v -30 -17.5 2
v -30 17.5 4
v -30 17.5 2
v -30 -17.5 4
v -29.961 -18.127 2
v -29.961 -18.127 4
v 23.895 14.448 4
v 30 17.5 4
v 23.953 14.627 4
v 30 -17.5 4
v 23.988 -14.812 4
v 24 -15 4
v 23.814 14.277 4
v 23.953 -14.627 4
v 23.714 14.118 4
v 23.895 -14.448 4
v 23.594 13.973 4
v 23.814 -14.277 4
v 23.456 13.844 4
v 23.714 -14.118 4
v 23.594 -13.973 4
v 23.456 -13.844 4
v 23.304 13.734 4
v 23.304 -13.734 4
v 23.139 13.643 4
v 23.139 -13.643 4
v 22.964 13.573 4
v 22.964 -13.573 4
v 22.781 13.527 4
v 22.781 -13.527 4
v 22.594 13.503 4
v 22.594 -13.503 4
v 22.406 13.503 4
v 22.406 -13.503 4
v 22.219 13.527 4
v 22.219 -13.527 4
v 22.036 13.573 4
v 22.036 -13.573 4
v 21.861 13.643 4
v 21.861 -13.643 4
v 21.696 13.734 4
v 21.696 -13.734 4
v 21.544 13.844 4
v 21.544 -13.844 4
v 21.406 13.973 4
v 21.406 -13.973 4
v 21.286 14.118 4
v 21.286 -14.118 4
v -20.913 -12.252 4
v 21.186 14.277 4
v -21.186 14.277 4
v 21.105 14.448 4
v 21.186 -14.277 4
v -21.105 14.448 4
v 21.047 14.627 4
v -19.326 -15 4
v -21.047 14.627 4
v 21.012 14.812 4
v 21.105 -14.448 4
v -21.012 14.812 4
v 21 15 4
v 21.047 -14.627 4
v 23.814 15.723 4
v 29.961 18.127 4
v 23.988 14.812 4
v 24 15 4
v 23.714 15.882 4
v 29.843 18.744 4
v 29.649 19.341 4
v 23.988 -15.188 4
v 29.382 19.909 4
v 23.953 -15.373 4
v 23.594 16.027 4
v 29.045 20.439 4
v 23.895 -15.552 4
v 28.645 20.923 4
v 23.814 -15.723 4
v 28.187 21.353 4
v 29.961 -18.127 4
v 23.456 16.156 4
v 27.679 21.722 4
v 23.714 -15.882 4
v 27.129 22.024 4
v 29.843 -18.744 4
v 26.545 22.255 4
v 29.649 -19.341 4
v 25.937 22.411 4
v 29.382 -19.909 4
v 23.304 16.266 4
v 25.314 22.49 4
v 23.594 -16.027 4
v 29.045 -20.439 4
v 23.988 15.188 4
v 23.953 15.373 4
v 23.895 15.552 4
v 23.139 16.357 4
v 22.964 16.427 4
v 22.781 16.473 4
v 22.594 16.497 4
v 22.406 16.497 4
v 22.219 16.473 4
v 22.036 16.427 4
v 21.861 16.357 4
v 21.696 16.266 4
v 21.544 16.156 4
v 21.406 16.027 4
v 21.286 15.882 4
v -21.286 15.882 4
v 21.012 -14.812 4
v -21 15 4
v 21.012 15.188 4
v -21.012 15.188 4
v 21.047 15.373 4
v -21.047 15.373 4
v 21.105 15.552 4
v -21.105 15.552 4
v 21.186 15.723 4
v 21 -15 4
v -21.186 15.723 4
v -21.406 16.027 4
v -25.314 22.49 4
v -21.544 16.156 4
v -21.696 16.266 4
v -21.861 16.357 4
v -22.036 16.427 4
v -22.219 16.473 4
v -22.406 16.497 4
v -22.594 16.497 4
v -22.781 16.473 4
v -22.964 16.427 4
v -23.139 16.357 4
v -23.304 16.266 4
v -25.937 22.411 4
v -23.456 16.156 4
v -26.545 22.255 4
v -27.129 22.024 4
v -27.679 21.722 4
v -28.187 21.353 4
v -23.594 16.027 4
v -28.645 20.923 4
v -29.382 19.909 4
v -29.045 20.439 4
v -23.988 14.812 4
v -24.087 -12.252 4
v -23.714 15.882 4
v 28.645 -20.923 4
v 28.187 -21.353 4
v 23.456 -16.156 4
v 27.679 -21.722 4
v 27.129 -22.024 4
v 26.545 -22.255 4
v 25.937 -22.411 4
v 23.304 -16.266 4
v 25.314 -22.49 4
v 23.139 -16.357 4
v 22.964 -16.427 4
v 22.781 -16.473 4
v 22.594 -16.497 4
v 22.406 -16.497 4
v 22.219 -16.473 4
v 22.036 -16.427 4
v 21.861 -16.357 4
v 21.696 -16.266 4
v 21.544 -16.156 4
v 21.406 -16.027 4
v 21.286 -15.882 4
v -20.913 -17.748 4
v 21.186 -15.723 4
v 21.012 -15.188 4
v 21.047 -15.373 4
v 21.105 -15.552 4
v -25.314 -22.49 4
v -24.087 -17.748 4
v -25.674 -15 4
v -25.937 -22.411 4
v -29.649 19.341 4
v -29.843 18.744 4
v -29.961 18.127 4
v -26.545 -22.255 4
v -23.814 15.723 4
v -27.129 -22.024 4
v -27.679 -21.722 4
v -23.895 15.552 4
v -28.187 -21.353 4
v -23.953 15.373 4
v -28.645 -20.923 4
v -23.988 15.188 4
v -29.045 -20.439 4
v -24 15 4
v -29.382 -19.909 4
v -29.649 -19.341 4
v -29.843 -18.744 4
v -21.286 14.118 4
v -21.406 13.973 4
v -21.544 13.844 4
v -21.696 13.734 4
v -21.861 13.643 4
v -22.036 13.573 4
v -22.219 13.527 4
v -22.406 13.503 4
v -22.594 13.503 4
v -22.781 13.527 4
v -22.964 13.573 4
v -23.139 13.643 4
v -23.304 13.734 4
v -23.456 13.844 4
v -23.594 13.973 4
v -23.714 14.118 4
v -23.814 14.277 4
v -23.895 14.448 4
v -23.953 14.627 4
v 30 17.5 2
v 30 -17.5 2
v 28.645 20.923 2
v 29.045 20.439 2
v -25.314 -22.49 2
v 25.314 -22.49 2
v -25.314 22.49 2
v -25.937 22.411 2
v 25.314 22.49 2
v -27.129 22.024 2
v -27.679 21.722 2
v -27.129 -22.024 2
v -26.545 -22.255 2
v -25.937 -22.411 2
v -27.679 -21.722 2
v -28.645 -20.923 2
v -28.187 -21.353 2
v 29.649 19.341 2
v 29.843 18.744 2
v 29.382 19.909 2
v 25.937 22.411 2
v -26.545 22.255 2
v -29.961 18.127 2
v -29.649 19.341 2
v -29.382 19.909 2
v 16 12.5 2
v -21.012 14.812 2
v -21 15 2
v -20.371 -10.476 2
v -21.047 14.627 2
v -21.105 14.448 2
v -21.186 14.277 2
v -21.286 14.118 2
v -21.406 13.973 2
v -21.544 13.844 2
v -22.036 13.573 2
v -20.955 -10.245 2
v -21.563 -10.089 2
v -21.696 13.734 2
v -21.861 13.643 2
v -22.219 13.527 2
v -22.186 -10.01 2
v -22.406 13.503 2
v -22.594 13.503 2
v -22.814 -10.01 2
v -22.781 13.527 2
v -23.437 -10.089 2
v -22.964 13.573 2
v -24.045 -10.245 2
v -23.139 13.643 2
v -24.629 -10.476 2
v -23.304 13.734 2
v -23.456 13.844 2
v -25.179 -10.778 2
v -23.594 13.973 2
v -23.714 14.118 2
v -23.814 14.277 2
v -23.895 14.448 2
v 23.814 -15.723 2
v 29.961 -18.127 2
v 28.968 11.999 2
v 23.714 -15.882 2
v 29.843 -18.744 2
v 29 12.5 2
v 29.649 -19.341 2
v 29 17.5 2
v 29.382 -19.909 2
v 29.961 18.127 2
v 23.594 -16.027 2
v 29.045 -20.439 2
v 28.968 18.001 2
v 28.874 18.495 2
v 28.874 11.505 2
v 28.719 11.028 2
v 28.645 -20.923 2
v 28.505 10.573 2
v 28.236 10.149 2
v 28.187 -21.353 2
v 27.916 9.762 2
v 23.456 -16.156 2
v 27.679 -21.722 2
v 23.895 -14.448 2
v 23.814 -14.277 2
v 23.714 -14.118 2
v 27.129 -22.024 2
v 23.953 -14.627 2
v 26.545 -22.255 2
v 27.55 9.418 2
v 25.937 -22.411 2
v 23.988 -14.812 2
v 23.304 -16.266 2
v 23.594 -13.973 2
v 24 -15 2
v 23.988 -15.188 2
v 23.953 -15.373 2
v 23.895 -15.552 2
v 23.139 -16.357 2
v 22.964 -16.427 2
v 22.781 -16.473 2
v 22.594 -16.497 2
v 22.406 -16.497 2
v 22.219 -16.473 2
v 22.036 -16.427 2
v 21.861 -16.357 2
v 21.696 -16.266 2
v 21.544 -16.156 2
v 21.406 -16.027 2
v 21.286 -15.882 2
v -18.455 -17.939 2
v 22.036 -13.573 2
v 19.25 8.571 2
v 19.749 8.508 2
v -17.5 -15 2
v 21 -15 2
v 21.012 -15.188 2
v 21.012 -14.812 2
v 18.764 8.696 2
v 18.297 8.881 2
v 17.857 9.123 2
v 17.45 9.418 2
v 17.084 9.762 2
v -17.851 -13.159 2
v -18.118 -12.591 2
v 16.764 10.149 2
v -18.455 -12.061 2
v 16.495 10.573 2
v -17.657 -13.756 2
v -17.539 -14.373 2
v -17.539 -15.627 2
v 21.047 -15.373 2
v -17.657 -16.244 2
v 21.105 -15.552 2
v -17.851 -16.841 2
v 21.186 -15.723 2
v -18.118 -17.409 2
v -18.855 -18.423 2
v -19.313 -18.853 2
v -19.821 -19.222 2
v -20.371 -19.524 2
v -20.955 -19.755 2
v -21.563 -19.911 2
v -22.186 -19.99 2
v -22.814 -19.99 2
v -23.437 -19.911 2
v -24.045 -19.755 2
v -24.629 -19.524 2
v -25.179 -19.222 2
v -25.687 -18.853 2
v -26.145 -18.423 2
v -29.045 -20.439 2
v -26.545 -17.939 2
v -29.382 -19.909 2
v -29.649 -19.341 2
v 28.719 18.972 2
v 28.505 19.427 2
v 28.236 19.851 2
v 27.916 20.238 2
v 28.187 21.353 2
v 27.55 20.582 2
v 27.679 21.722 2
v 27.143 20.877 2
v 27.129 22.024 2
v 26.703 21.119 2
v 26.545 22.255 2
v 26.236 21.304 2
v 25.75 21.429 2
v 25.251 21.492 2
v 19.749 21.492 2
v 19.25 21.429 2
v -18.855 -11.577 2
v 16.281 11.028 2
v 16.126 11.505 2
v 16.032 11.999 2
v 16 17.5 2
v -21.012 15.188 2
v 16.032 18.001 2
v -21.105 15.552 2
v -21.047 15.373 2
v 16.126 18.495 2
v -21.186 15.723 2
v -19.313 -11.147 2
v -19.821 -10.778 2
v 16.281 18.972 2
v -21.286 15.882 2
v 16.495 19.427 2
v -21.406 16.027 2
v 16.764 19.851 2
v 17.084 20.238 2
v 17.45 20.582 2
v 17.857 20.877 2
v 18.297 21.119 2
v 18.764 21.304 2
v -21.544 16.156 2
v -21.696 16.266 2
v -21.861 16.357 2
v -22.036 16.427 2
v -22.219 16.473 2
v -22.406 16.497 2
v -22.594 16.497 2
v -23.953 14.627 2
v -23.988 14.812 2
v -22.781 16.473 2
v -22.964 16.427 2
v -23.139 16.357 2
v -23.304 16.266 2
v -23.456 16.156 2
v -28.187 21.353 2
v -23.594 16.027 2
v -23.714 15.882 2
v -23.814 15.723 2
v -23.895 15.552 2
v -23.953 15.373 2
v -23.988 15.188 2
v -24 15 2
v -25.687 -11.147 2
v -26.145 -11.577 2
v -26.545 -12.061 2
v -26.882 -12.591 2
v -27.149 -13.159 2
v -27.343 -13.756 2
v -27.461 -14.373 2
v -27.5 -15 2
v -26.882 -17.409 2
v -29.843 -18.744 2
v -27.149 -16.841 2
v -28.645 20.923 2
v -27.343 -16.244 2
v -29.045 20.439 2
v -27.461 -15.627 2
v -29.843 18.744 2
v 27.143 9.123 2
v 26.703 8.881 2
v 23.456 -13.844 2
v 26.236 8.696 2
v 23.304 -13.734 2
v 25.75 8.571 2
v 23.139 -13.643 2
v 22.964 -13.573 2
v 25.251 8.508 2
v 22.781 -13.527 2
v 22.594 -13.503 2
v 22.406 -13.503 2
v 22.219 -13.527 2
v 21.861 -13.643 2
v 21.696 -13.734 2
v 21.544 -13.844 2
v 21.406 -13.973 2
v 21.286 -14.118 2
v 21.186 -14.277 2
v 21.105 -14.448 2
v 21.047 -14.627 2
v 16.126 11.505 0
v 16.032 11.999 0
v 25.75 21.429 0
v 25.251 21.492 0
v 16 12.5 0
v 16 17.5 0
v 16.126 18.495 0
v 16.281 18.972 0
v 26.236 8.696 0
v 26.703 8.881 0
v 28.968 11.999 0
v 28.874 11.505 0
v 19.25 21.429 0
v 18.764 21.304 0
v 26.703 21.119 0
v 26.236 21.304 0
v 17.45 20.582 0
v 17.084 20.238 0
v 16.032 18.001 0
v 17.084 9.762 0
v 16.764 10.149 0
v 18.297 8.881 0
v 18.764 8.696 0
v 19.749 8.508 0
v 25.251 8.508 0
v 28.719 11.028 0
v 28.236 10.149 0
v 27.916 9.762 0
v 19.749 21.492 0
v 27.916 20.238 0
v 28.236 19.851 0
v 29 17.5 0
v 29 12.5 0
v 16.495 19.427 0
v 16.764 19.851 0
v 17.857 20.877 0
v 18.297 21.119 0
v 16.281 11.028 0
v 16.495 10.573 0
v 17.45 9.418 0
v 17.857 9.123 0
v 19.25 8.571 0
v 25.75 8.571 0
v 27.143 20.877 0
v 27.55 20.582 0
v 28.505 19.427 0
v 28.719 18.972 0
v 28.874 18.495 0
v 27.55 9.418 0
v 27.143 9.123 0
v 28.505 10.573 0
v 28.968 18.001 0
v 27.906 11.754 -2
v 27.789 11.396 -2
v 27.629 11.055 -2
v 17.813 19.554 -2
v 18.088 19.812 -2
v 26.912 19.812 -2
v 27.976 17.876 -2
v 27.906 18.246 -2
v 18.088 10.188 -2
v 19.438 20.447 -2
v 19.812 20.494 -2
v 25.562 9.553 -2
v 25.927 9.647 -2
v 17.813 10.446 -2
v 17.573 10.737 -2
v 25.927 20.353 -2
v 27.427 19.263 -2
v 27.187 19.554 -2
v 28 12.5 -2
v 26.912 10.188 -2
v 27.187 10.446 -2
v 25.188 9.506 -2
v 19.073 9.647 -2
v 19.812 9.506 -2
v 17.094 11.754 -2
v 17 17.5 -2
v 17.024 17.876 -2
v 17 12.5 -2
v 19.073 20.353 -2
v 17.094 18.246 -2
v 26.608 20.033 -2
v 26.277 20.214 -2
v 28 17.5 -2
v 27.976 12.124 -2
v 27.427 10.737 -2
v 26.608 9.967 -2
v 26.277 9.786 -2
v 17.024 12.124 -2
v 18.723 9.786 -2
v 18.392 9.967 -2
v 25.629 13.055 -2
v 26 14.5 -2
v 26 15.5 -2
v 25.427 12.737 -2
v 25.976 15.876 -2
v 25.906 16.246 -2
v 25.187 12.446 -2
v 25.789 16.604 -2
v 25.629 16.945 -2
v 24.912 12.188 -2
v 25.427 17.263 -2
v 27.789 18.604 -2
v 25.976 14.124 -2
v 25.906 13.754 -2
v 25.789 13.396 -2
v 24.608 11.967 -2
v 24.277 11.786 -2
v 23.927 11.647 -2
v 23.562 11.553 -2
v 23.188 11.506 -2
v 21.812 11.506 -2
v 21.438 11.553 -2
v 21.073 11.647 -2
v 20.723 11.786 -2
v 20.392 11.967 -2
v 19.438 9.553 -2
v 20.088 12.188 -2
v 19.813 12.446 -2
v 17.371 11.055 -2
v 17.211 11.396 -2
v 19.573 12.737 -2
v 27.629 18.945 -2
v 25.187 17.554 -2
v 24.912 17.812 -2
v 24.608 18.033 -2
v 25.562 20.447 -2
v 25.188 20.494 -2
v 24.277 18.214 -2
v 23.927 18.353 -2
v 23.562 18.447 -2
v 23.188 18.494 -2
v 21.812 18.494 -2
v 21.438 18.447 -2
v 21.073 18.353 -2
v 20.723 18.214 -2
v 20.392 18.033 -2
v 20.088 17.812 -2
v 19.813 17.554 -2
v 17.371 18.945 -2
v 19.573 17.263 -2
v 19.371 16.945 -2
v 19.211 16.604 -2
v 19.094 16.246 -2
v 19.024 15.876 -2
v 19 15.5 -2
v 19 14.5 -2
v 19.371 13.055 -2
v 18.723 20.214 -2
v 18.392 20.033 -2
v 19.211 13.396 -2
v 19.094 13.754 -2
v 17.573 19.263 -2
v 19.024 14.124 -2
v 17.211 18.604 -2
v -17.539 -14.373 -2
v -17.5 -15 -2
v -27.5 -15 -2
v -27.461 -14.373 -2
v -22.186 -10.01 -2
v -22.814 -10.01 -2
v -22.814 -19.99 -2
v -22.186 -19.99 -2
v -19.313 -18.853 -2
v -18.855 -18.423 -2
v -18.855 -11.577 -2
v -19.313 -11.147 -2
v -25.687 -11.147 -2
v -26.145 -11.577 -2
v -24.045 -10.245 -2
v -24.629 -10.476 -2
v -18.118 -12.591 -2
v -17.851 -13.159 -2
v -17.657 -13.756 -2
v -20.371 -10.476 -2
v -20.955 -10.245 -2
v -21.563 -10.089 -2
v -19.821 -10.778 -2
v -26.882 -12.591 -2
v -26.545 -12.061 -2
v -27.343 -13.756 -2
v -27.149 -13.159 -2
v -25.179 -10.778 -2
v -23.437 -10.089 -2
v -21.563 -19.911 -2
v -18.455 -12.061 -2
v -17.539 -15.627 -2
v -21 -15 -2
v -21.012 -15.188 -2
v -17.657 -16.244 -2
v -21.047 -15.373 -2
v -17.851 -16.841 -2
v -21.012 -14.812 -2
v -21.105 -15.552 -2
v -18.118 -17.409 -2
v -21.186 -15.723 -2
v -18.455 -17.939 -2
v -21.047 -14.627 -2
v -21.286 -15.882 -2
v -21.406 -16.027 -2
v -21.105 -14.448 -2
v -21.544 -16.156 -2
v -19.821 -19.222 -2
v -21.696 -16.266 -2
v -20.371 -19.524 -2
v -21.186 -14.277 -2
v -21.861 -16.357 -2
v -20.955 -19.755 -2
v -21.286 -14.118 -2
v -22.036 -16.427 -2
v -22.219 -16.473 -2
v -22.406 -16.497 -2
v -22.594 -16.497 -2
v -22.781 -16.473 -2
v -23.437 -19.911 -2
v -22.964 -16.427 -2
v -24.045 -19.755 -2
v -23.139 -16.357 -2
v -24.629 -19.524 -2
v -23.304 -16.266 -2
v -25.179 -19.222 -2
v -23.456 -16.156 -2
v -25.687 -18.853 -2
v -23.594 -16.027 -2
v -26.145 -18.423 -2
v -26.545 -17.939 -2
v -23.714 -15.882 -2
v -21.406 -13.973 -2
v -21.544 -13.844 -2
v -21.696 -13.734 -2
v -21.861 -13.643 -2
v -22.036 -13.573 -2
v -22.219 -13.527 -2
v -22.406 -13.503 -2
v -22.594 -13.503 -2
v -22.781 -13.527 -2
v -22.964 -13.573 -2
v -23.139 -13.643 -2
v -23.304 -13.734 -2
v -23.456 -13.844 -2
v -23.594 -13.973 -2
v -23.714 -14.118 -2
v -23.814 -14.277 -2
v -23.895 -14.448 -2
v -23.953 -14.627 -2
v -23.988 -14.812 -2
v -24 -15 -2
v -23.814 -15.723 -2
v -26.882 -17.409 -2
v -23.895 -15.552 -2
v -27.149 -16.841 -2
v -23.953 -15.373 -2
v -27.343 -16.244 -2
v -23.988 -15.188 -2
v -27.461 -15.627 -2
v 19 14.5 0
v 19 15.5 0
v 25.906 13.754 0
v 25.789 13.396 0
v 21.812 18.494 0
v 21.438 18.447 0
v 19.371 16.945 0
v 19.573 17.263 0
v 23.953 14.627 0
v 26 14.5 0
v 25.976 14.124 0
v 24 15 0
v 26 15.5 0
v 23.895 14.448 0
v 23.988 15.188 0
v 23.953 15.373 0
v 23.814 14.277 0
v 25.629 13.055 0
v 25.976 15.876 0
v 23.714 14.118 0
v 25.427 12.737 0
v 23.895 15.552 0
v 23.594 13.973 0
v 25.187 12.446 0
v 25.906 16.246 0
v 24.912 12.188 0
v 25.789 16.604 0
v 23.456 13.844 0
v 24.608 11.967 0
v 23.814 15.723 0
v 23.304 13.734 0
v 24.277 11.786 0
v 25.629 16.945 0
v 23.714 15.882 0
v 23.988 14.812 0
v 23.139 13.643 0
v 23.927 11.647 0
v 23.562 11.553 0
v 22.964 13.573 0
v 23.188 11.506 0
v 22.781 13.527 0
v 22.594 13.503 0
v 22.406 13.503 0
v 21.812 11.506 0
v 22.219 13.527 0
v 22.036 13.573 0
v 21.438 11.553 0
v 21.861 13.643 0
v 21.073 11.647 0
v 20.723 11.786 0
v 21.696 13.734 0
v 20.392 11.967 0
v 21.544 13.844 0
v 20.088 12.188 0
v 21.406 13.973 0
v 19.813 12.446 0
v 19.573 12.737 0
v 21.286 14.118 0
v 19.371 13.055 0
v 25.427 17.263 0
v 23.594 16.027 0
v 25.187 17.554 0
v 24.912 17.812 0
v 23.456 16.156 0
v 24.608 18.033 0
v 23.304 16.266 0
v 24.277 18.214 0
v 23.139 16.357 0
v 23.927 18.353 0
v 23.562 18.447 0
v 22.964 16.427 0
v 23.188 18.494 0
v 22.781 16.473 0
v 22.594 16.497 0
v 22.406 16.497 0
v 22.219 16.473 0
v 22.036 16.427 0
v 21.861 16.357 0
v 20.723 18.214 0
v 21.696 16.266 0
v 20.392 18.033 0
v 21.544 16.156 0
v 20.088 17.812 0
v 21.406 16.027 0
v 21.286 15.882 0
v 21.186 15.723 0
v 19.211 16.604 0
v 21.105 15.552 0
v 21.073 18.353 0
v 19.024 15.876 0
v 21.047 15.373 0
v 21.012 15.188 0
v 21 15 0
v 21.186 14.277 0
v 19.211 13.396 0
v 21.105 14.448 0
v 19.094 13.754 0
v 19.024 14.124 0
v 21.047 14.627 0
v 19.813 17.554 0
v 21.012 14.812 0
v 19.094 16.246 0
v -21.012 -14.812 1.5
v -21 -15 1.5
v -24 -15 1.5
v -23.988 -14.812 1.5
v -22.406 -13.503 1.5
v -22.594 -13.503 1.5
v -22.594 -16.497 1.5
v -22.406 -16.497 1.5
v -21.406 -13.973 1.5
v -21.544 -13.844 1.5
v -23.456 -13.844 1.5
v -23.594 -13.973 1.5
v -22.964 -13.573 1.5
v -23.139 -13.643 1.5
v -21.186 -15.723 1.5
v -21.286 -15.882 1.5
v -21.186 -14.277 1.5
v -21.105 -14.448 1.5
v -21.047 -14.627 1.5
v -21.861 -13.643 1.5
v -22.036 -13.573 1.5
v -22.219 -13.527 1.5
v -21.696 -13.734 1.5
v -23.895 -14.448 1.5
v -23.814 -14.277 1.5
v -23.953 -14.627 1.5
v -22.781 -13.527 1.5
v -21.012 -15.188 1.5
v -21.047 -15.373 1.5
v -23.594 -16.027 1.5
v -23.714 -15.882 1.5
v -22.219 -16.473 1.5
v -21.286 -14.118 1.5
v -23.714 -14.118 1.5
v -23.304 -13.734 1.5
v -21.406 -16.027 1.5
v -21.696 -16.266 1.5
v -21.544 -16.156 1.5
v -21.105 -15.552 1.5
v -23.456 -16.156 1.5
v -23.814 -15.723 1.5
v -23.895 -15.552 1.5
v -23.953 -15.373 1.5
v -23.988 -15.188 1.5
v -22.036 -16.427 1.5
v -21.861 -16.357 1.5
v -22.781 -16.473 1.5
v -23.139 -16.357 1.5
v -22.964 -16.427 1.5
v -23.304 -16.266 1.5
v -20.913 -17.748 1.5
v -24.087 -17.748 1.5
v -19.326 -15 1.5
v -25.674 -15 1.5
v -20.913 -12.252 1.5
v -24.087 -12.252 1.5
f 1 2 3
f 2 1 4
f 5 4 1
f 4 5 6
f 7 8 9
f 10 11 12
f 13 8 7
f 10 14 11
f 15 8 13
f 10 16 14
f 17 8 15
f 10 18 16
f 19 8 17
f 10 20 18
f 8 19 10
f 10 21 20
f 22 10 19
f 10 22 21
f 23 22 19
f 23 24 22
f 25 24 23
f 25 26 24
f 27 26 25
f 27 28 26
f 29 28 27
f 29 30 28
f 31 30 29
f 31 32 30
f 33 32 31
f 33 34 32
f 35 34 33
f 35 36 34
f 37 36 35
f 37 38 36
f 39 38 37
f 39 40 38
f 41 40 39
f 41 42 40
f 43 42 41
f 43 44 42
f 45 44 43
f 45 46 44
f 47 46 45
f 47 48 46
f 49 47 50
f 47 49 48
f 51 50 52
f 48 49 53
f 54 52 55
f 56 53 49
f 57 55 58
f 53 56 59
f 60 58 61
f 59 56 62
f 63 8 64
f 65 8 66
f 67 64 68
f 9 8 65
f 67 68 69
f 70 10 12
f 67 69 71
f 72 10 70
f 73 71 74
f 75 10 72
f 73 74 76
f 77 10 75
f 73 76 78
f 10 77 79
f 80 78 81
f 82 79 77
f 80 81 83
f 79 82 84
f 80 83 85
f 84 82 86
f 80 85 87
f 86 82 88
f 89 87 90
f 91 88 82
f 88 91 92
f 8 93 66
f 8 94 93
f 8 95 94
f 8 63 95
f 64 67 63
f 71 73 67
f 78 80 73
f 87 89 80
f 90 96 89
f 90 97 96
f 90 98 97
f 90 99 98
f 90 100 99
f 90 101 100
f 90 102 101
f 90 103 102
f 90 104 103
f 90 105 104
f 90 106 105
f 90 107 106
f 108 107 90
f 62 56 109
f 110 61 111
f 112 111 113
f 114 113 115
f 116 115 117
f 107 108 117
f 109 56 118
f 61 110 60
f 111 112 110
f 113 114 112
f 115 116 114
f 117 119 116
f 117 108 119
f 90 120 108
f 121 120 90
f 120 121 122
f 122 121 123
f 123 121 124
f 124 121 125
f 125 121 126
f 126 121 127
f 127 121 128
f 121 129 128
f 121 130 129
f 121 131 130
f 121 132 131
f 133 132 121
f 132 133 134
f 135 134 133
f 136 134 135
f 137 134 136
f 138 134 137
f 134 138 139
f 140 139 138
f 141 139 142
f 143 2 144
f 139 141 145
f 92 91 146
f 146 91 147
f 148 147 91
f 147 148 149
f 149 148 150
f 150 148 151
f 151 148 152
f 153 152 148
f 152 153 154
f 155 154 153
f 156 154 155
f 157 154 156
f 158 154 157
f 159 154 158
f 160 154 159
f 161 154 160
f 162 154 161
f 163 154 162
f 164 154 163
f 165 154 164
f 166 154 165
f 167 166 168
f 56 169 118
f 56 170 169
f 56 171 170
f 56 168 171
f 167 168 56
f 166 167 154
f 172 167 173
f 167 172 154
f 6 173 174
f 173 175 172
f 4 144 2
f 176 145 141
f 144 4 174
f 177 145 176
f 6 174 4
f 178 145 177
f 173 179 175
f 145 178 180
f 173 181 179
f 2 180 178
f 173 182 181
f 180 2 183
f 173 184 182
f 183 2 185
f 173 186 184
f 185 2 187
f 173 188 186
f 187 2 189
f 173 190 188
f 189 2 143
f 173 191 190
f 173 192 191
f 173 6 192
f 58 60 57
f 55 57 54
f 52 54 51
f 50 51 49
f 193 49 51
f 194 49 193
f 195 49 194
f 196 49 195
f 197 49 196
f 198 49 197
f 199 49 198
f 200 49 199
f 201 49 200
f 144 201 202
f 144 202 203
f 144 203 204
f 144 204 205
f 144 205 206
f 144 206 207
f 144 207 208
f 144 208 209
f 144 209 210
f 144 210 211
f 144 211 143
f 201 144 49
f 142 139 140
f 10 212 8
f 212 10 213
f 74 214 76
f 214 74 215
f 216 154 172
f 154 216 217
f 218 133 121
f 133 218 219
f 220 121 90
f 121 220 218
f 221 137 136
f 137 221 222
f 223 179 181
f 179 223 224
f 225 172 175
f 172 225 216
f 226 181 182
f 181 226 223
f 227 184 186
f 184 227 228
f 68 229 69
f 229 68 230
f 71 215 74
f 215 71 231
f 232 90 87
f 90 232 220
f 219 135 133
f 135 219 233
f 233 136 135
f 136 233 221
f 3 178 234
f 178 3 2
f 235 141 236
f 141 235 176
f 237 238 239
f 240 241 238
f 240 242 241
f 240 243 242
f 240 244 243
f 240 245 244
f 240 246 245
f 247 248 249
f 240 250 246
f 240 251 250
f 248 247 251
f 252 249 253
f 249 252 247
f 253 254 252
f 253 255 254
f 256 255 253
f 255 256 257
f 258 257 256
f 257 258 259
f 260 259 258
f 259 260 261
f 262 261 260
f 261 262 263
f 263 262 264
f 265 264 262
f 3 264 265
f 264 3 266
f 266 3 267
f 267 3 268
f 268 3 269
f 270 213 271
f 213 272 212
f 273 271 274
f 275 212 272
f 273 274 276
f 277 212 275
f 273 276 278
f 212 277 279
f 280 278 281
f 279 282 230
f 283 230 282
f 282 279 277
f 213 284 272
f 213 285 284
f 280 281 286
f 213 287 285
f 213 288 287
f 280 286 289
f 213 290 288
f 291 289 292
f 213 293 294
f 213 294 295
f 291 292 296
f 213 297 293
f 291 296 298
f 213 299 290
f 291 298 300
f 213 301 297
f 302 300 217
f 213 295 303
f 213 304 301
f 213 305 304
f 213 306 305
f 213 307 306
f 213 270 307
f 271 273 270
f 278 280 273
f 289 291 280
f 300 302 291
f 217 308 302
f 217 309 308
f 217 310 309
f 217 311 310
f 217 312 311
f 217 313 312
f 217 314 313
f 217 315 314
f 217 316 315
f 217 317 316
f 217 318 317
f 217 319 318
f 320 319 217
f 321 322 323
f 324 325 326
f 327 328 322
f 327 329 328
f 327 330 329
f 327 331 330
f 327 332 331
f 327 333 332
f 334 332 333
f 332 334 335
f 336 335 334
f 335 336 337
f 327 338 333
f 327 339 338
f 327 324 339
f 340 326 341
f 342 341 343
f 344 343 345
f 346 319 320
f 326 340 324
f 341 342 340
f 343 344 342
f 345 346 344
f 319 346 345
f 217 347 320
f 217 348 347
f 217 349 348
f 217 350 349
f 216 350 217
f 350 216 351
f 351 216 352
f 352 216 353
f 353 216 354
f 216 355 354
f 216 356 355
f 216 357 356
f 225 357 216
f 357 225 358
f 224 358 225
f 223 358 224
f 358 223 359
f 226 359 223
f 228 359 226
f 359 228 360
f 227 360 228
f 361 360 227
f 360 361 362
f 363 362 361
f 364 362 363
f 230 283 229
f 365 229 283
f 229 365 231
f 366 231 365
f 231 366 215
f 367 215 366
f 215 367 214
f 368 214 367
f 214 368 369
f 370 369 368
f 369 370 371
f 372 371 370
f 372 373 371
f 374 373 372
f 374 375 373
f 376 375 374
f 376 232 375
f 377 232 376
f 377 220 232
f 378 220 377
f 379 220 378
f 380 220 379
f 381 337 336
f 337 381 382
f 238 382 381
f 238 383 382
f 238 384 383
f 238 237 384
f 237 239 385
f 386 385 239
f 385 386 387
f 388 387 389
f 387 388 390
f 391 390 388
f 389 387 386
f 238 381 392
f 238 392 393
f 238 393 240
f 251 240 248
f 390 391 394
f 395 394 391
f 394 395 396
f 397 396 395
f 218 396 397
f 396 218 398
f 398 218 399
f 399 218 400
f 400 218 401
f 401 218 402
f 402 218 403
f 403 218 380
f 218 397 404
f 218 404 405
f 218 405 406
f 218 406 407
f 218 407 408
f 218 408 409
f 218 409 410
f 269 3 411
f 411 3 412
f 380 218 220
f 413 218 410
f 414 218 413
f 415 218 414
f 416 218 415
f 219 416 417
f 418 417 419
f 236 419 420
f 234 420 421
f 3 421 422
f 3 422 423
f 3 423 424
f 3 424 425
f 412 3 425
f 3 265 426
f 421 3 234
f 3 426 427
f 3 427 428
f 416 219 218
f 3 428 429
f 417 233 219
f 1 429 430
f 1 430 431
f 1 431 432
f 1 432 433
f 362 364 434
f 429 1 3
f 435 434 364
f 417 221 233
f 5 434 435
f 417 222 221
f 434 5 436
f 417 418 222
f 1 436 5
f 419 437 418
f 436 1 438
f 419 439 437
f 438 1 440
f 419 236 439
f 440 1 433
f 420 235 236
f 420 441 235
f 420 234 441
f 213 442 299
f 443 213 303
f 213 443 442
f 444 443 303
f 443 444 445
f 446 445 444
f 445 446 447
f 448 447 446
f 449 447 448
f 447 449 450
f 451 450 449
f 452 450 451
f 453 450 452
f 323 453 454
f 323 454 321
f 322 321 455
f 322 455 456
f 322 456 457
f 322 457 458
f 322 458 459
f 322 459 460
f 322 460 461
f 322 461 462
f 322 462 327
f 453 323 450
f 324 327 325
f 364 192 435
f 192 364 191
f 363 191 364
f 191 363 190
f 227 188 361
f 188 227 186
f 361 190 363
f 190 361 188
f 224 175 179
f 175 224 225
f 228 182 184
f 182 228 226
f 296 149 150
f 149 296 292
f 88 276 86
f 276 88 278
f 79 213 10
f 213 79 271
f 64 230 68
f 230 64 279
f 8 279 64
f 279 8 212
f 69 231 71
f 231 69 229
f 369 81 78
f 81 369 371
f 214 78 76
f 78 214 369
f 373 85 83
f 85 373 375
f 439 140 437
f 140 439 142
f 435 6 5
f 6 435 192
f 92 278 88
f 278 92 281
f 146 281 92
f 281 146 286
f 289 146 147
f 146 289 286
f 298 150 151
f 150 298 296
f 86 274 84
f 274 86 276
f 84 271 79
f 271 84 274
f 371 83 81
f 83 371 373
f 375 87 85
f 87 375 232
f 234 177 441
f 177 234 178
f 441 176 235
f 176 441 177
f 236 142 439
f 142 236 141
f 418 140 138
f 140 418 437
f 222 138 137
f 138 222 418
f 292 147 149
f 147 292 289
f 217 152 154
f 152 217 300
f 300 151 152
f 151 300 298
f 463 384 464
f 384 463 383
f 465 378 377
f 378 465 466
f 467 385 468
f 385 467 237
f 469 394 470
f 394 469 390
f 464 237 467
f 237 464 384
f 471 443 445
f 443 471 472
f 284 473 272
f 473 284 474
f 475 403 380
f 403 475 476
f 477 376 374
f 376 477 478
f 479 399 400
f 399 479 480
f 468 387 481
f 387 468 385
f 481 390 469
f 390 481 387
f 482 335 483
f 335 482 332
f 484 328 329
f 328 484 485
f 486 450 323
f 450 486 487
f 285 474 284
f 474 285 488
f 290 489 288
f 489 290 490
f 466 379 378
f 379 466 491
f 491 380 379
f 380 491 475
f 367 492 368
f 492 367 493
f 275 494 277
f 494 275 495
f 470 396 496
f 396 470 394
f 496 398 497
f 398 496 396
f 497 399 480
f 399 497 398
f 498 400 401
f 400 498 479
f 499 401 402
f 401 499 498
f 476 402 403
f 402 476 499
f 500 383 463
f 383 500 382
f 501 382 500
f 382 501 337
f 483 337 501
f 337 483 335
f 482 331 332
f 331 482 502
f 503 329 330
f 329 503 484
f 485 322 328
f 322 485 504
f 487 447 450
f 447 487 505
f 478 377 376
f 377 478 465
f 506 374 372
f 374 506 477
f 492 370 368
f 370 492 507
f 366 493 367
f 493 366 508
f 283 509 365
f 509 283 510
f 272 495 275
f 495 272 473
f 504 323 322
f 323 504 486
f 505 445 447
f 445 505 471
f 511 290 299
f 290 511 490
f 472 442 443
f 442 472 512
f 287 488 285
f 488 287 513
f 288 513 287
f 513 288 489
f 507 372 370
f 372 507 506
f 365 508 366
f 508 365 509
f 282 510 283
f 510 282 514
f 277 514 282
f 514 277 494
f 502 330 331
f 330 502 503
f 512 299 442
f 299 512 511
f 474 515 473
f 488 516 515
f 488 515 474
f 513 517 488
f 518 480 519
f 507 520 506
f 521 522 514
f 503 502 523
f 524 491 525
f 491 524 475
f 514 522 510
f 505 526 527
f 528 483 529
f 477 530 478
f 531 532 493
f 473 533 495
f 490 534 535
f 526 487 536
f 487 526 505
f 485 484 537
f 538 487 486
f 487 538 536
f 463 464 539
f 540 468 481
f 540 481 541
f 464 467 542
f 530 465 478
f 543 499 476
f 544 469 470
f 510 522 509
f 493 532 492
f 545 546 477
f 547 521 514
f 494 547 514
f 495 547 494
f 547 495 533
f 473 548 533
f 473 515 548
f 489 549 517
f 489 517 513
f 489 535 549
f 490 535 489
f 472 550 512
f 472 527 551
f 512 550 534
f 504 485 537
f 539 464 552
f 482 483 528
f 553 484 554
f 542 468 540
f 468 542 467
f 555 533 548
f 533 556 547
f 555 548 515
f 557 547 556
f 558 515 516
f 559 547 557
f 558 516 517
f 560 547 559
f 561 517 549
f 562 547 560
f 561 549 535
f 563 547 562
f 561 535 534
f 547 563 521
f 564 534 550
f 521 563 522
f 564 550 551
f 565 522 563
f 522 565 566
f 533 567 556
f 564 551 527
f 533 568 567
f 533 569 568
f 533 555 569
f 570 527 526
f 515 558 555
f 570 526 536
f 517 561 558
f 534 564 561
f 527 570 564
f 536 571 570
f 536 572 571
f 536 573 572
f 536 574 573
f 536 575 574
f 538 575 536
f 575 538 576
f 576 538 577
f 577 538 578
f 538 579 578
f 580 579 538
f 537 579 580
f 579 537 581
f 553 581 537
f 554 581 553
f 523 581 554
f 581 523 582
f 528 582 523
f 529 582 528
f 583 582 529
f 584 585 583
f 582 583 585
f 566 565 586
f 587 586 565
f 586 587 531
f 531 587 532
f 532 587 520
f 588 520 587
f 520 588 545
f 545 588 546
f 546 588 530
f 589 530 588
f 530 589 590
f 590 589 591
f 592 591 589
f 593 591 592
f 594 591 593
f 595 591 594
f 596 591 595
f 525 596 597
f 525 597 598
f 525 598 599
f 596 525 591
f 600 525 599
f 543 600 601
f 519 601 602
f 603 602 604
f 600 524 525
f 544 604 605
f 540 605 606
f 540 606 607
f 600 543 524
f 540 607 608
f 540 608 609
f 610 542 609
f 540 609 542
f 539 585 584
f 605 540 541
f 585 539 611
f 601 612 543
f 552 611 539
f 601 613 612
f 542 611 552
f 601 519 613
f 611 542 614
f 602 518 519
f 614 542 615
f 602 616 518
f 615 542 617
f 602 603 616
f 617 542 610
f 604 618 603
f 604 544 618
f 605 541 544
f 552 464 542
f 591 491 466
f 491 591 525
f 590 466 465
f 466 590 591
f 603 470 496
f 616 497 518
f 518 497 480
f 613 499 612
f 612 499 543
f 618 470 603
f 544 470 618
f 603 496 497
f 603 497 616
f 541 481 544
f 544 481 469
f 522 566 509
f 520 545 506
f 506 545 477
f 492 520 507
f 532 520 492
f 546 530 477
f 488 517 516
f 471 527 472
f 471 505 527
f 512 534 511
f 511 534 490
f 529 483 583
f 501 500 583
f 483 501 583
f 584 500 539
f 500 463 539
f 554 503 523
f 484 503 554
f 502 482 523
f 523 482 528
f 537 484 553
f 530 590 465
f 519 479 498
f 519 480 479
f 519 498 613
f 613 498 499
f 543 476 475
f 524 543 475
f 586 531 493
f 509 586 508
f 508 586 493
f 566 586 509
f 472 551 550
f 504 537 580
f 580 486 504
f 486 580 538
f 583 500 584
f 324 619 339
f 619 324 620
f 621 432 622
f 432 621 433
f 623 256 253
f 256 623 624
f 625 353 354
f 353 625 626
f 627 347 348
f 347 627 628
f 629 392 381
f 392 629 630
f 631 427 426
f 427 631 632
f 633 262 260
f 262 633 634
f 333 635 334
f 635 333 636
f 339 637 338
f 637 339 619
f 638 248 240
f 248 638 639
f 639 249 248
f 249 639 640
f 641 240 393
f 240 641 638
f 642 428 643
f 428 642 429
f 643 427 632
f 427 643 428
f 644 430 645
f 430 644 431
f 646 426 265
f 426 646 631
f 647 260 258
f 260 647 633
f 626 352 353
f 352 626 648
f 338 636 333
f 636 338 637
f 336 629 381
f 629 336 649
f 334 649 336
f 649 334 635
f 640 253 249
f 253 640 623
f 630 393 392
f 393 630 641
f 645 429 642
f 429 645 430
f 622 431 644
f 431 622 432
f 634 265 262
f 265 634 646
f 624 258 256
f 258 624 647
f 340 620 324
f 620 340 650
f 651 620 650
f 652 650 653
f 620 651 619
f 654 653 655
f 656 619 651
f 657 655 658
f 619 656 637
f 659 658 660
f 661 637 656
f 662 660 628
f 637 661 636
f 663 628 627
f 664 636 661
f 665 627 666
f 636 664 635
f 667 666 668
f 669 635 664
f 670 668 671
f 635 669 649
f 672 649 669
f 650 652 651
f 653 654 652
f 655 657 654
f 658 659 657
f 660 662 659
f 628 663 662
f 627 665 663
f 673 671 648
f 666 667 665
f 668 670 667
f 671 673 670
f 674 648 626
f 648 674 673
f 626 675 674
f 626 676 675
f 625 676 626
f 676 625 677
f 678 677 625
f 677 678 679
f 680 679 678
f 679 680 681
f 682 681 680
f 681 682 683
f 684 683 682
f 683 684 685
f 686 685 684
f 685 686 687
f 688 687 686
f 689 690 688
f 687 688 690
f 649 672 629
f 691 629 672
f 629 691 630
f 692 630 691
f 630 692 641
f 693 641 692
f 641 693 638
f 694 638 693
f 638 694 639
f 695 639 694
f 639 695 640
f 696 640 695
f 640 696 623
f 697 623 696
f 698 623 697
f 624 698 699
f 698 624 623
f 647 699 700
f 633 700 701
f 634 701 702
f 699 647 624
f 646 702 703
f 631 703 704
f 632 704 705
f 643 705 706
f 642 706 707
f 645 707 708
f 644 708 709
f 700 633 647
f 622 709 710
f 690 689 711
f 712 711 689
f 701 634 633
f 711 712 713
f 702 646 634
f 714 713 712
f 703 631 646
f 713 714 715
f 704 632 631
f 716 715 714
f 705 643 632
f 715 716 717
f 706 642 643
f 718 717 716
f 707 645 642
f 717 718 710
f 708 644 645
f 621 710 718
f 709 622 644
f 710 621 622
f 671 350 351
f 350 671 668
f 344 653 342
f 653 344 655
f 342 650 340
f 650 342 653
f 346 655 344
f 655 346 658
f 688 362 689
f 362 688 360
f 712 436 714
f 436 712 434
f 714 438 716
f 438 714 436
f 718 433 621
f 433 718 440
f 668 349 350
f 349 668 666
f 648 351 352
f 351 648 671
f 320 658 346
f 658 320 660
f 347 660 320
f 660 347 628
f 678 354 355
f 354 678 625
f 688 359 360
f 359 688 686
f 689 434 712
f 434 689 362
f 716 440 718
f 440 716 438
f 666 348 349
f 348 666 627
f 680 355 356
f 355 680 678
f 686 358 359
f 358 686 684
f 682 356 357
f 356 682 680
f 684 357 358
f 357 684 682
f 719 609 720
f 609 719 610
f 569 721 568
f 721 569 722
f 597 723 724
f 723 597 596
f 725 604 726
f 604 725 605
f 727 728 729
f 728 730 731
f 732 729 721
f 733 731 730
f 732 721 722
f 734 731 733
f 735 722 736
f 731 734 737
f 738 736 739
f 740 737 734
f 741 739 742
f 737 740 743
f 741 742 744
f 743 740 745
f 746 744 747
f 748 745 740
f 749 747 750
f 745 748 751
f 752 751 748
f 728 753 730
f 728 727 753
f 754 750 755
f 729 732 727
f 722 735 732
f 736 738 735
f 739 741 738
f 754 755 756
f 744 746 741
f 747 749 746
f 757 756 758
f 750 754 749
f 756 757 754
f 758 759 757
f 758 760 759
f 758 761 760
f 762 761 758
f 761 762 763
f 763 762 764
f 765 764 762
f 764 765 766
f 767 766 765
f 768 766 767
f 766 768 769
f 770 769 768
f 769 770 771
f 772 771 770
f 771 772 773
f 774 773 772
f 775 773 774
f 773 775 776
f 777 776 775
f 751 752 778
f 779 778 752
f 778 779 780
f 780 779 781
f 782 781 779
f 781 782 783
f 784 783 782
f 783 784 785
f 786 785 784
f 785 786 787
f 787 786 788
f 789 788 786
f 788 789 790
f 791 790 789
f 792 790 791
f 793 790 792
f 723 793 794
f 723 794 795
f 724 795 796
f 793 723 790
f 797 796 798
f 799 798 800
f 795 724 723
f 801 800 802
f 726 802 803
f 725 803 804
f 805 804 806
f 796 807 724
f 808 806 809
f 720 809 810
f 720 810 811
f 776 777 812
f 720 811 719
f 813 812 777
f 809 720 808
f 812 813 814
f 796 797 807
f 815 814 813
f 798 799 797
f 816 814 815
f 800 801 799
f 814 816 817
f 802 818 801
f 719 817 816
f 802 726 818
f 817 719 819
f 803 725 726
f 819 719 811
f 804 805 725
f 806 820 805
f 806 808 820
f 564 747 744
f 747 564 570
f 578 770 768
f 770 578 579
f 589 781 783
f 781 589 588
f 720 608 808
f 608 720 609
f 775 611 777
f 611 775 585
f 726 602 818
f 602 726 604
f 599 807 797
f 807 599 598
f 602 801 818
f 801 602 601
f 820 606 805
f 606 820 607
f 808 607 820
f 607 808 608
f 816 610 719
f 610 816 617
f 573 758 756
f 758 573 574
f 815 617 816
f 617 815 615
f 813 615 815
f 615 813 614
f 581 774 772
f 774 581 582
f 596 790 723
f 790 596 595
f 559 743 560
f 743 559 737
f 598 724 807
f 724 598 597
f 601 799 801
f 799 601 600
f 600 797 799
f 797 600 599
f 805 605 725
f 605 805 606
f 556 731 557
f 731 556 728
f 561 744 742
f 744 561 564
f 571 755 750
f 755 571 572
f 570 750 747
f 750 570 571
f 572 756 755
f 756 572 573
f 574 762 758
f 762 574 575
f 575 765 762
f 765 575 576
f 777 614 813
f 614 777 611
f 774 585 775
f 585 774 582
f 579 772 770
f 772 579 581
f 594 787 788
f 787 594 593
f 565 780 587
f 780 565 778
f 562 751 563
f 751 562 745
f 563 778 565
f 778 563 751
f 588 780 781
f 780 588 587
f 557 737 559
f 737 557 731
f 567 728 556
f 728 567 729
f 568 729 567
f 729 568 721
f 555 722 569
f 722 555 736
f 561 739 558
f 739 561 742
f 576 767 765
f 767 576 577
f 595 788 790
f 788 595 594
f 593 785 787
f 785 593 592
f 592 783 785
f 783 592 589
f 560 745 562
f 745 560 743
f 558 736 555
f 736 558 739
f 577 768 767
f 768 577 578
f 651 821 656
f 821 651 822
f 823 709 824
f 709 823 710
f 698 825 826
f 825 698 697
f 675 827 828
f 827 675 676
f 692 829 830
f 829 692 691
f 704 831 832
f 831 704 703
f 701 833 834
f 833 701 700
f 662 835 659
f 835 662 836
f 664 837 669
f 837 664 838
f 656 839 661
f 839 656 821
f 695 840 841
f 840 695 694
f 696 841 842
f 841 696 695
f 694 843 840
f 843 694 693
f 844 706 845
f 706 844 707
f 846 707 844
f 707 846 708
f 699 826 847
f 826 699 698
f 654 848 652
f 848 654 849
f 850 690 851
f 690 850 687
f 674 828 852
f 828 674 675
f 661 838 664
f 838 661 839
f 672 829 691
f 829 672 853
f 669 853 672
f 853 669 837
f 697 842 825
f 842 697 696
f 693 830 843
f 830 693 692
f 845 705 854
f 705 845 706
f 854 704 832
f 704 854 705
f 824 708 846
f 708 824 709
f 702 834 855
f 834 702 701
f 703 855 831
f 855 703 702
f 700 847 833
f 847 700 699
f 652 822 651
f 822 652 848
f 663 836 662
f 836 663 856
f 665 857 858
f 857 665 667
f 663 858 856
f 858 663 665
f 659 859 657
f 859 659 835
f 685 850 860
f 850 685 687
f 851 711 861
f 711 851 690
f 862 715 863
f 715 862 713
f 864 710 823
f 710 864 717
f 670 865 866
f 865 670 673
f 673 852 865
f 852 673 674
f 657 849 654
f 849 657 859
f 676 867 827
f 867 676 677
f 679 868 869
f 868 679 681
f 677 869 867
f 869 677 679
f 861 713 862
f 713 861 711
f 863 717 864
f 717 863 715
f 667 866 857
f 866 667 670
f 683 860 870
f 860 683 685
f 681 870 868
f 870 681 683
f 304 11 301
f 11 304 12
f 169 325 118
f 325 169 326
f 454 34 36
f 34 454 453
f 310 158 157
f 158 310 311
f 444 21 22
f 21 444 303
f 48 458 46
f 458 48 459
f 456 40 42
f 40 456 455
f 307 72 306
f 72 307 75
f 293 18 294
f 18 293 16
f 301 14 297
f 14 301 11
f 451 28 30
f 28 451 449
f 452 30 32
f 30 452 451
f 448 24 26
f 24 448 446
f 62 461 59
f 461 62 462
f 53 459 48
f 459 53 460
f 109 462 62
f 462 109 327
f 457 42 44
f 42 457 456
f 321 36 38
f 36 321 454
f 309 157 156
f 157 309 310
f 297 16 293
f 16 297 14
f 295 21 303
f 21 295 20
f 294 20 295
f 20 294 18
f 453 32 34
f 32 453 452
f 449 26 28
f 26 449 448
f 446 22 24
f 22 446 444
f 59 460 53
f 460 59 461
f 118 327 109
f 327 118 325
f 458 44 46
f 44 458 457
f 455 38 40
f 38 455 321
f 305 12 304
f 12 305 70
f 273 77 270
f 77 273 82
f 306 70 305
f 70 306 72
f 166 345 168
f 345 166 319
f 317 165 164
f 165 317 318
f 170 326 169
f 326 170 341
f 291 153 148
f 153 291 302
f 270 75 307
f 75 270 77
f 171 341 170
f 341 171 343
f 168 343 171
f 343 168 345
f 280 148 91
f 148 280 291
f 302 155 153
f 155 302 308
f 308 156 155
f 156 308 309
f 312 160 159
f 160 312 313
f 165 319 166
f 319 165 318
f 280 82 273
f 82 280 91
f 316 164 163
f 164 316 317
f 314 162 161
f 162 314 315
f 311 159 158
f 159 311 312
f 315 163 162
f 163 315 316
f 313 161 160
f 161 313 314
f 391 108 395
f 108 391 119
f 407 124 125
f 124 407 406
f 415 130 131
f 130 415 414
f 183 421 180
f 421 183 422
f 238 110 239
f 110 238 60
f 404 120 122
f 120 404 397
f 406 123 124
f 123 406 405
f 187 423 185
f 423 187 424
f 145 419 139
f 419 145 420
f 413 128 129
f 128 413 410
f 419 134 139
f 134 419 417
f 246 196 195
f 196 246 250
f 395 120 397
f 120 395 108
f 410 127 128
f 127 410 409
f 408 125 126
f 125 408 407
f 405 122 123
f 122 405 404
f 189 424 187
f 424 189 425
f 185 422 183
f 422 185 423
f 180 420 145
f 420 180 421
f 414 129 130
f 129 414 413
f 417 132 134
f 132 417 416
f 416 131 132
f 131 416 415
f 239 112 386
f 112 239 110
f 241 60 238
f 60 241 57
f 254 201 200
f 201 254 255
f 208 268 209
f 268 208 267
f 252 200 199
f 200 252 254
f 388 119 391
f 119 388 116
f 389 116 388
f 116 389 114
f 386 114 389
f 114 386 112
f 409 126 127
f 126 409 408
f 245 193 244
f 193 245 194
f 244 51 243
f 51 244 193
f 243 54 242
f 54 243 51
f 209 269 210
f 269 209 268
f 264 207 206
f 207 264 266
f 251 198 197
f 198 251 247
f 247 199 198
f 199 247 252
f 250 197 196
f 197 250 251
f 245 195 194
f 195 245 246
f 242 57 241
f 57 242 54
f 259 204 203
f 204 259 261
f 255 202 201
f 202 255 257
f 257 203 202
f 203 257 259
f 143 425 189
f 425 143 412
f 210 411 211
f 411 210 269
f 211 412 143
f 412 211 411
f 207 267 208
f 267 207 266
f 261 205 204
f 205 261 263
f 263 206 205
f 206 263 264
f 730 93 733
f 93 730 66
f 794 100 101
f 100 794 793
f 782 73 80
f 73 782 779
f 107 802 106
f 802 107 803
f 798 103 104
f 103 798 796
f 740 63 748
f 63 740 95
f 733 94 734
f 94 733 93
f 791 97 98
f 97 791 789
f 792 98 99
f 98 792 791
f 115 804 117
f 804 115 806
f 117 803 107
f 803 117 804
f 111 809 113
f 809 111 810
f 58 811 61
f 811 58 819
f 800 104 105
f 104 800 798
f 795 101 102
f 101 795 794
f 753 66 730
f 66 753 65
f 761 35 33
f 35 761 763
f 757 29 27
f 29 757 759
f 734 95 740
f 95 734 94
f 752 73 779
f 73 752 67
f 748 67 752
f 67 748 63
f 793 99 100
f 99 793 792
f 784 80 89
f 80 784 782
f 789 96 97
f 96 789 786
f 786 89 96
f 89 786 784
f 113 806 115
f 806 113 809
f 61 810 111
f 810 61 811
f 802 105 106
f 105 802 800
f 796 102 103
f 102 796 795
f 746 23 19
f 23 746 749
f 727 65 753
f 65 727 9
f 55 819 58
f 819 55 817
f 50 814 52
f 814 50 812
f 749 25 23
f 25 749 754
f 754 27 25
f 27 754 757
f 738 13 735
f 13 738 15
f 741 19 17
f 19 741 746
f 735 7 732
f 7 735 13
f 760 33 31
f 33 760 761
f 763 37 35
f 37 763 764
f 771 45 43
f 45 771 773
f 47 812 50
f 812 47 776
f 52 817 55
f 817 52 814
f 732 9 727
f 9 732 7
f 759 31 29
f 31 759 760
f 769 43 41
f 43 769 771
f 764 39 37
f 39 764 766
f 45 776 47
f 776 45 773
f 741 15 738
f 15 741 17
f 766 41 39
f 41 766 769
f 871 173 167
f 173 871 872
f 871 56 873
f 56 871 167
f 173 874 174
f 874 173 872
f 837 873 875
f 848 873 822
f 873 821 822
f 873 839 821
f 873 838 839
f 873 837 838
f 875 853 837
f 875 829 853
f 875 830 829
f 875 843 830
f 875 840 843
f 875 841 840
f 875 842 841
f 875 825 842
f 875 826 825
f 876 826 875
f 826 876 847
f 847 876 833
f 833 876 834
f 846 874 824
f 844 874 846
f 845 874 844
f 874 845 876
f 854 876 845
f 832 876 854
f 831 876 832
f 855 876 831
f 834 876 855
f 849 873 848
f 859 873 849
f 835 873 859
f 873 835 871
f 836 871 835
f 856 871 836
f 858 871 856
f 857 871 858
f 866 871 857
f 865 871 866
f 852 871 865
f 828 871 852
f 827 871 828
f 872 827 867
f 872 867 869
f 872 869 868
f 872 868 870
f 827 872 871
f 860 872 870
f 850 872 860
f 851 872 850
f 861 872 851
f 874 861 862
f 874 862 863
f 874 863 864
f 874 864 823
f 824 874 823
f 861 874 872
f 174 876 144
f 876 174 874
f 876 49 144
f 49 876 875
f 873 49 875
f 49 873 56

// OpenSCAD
$fn = 50;


difference() {
	union() {
		translate(v = [0, 0, 2]) {
			rotate(a = [0, 0, 0]) {
				hull() {
					translate(v = [-25.0000000000, 17.5000000000, 0]) {
						rotate(a = [0, 0, 0]) {
							translate(v = [0, 0, 0]) {
								rotate(a = [0, 0, 0]) {
									cylinder(h = 2, r = 5);
								}
							}
						}
					}
					translate(v = [25.0000000000, 17.5000000000, 0]) {
						rotate(a = [0, 0, 0]) {
							translate(v = [0, 0, 0]) {
								rotate(a = [0, 0, 0]) {
									cylinder(h = 2, r = 5);
								}
							}
						}
					}
					translate(v = [-25.0000000000, -17.5000000000, 0]) {
						rotate(a = [0, 0, 0]) {
							translate(v = [0, 0, 0]) {
								rotate(a = [0, 0, 0]) {
									cylinder(h = 2, r = 5);
								}
							}
						}
					}
					translate(v = [25.0000000000, -17.5000000000, 0]) {
						rotate(a = [0, 0, 0]) {
							translate(v = [0, 0, 0]) {
								rotate(a = [0, 0, 0]) {
									cylinder(h = 2, r = 5);
								}
							}
						}
					}
				}
			}
		}
		translate(v = [22.5000000000, 15.0000000000, 0]) {
			rotate(a = [0, 0, 0]) {
				hull() {
					translate(v = [-2.5000000000, 2.5000000000, 0]) {
						rotate(a = [0, 0, 0]) {
							cylinder(h = 2, r1 = 4.0000000000, r2 = 4.0000000000);
						}
					}
					translate(v = [2.5000000000, 2.5000000000, 0]) {
						rotate(a = [0, 0, 0]) {
							cylinder(h = 2, r1 = 4.0000000000, r2 = 4.0000000000);
						}
					}
					translate(v = [-2.5000000000, -2.5000000000, 0]) {
						rotate(a = [0, 0, 0]) {
							cylinder(h = 2, r1 = 4.0000000000, r2 = 4.0000000000);
						}
					}
					translate(v = [2.5000000000, -2.5000000000, 0]) {
						rotate(a = [0, 0, 0]) {
							cylinder(h = 2, r1 = 4.0000000000, r2 = 4.0000000000);
						}
					}
				}
			}
		}
		translate(v = [22.5000000000, 15.0000000000, -2]) {
			rotate(a = [0, 180, 0]) {
				hull() {
					translate(v = [-2.5000000000, 2.5000000000, 0]) {
						rotate(a = [0, 180, 0]) {
							cylinder(h = 2, r1 = 3.0000000000, r2 = 4.0000000000);
						}
					}
					translate(v = [2.5000000000, 2.5000000000, 0]) {
						rotate(a = [0, 180, 0]) {
							cylinder(h = 2, r1 = 3.0000000000, r2 = 4.0000000000);
						}
					}
					translate(v = [-2.5000000000, -2.5000000000, 0]) {
						rotate(a = [0, 180, 0]) {
							cylinder(h = 2, r1 = 3.0000000000, r2 = 4.0000000000);
						}
					}
					translate(v = [2.5000000000, -2.5000000000, 0]) {
						rotate(a = [0, 180, 0]) {
							cylinder(h = 2, r1 = 3.0000000000, r2 = 4.0000000000);
						}
					}
				}
			}
		}
		translate(v = [-22.5000000000, -15.0000000000, -2.0000000000]) {
			rotate(a = [0, 0, 0]) {
				cylinder(h = 4, r = 5);
			}
		}
	}
	union() {
		translate(v = [22.5000000000, 15.0000000000, -2]) {
			rotate(a = [0, 0, 0]) {
				hull() {
					translate(v = [-0.5000000000, 0.5000000000, 0]) {
						rotate(a = [0, 0, 0]) {
							translate(v = [0, 0, 0]) {
								rotate(a = [0, 0, 0]) {
									cylinder(h = 2, r = 3.0000000000);
								}
							}
						}
					}
					translate(v = [0.5000000000, 0.5000000000, 0]) {
						rotate(a = [0, 0, 0]) {
							translate(v = [0, 0, 0]) {
								rotate(a = [0, 0, 0]) {
									cylinder(h = 2, r = 3.0000000000);
								}
							}
						}
					}
					translate(v = [-0.5000000000, -0.5000000000, 0]) {
						rotate(a = [0, 0, 0]) {
							translate(v = [0, 0, 0]) {
								rotate(a = [0, 0, 0]) {
									cylinder(h = 2, r = 3.0000000000);
								}
							}
						}
					}
					translate(v = [0.5000000000, -0.5000000000, 0]) {
						rotate(a = [0, 0, 0]) {
							translate(v = [0, 0, 0]) {
								rotate(a = [0, 0, 0]) {
									cylinder(h = 2, r = 3.0000000000);
								}
							}
						}
					}
				}
			}
		}
		translate(v = [-22.5000000000, -15.0000000000, -50]) {
			rotate(a = [0, 0, 0]) {
				cylinder(h = 100, r = 1.5000000000);
			}
		}
		translate(v = [22.5000000000, -15.0000000000, -50]) {
			rotate(a = [0, 0, 0]) {
				cylinder(h = 100, r = 1.5000000000);
			}
		}
		translate(v = [-22.5000000000, 15.0000000000, -50]) {
			rotate(a = [0, 0, 0]) {
				cylinder(h = 100, r = 1.5000000000);
			}
		}
		translate(v = [22.5000000000, 15.0000000000, -50]) {
			rotate(a = [0, 0, 0]) {
				cylinder(h = 100, r = 1.5000000000);
			}
		}
		translate(v = [-22.5000000000, -15.0000000000, 1.5000000000]) {
			rotate(a = [0, 0, 0]) {
				#translate(v = [0, 0, 0]) {
					rotate(a = [0, 0, 0]) {
						linear_extrude(height = 2.5000000000) {
							polygon(points = [[3.1735000000, 0.0000000000], [1.5867500000, 2.7483316189], [-1.5867500000, 2.7483316189], [-3.1735000000, 0.0000000000], [-1.5867500000, -2.7483316189], [1.5867500000, -2.7483316189]]);
						}
					}
				}
			}
		}
	}
}
